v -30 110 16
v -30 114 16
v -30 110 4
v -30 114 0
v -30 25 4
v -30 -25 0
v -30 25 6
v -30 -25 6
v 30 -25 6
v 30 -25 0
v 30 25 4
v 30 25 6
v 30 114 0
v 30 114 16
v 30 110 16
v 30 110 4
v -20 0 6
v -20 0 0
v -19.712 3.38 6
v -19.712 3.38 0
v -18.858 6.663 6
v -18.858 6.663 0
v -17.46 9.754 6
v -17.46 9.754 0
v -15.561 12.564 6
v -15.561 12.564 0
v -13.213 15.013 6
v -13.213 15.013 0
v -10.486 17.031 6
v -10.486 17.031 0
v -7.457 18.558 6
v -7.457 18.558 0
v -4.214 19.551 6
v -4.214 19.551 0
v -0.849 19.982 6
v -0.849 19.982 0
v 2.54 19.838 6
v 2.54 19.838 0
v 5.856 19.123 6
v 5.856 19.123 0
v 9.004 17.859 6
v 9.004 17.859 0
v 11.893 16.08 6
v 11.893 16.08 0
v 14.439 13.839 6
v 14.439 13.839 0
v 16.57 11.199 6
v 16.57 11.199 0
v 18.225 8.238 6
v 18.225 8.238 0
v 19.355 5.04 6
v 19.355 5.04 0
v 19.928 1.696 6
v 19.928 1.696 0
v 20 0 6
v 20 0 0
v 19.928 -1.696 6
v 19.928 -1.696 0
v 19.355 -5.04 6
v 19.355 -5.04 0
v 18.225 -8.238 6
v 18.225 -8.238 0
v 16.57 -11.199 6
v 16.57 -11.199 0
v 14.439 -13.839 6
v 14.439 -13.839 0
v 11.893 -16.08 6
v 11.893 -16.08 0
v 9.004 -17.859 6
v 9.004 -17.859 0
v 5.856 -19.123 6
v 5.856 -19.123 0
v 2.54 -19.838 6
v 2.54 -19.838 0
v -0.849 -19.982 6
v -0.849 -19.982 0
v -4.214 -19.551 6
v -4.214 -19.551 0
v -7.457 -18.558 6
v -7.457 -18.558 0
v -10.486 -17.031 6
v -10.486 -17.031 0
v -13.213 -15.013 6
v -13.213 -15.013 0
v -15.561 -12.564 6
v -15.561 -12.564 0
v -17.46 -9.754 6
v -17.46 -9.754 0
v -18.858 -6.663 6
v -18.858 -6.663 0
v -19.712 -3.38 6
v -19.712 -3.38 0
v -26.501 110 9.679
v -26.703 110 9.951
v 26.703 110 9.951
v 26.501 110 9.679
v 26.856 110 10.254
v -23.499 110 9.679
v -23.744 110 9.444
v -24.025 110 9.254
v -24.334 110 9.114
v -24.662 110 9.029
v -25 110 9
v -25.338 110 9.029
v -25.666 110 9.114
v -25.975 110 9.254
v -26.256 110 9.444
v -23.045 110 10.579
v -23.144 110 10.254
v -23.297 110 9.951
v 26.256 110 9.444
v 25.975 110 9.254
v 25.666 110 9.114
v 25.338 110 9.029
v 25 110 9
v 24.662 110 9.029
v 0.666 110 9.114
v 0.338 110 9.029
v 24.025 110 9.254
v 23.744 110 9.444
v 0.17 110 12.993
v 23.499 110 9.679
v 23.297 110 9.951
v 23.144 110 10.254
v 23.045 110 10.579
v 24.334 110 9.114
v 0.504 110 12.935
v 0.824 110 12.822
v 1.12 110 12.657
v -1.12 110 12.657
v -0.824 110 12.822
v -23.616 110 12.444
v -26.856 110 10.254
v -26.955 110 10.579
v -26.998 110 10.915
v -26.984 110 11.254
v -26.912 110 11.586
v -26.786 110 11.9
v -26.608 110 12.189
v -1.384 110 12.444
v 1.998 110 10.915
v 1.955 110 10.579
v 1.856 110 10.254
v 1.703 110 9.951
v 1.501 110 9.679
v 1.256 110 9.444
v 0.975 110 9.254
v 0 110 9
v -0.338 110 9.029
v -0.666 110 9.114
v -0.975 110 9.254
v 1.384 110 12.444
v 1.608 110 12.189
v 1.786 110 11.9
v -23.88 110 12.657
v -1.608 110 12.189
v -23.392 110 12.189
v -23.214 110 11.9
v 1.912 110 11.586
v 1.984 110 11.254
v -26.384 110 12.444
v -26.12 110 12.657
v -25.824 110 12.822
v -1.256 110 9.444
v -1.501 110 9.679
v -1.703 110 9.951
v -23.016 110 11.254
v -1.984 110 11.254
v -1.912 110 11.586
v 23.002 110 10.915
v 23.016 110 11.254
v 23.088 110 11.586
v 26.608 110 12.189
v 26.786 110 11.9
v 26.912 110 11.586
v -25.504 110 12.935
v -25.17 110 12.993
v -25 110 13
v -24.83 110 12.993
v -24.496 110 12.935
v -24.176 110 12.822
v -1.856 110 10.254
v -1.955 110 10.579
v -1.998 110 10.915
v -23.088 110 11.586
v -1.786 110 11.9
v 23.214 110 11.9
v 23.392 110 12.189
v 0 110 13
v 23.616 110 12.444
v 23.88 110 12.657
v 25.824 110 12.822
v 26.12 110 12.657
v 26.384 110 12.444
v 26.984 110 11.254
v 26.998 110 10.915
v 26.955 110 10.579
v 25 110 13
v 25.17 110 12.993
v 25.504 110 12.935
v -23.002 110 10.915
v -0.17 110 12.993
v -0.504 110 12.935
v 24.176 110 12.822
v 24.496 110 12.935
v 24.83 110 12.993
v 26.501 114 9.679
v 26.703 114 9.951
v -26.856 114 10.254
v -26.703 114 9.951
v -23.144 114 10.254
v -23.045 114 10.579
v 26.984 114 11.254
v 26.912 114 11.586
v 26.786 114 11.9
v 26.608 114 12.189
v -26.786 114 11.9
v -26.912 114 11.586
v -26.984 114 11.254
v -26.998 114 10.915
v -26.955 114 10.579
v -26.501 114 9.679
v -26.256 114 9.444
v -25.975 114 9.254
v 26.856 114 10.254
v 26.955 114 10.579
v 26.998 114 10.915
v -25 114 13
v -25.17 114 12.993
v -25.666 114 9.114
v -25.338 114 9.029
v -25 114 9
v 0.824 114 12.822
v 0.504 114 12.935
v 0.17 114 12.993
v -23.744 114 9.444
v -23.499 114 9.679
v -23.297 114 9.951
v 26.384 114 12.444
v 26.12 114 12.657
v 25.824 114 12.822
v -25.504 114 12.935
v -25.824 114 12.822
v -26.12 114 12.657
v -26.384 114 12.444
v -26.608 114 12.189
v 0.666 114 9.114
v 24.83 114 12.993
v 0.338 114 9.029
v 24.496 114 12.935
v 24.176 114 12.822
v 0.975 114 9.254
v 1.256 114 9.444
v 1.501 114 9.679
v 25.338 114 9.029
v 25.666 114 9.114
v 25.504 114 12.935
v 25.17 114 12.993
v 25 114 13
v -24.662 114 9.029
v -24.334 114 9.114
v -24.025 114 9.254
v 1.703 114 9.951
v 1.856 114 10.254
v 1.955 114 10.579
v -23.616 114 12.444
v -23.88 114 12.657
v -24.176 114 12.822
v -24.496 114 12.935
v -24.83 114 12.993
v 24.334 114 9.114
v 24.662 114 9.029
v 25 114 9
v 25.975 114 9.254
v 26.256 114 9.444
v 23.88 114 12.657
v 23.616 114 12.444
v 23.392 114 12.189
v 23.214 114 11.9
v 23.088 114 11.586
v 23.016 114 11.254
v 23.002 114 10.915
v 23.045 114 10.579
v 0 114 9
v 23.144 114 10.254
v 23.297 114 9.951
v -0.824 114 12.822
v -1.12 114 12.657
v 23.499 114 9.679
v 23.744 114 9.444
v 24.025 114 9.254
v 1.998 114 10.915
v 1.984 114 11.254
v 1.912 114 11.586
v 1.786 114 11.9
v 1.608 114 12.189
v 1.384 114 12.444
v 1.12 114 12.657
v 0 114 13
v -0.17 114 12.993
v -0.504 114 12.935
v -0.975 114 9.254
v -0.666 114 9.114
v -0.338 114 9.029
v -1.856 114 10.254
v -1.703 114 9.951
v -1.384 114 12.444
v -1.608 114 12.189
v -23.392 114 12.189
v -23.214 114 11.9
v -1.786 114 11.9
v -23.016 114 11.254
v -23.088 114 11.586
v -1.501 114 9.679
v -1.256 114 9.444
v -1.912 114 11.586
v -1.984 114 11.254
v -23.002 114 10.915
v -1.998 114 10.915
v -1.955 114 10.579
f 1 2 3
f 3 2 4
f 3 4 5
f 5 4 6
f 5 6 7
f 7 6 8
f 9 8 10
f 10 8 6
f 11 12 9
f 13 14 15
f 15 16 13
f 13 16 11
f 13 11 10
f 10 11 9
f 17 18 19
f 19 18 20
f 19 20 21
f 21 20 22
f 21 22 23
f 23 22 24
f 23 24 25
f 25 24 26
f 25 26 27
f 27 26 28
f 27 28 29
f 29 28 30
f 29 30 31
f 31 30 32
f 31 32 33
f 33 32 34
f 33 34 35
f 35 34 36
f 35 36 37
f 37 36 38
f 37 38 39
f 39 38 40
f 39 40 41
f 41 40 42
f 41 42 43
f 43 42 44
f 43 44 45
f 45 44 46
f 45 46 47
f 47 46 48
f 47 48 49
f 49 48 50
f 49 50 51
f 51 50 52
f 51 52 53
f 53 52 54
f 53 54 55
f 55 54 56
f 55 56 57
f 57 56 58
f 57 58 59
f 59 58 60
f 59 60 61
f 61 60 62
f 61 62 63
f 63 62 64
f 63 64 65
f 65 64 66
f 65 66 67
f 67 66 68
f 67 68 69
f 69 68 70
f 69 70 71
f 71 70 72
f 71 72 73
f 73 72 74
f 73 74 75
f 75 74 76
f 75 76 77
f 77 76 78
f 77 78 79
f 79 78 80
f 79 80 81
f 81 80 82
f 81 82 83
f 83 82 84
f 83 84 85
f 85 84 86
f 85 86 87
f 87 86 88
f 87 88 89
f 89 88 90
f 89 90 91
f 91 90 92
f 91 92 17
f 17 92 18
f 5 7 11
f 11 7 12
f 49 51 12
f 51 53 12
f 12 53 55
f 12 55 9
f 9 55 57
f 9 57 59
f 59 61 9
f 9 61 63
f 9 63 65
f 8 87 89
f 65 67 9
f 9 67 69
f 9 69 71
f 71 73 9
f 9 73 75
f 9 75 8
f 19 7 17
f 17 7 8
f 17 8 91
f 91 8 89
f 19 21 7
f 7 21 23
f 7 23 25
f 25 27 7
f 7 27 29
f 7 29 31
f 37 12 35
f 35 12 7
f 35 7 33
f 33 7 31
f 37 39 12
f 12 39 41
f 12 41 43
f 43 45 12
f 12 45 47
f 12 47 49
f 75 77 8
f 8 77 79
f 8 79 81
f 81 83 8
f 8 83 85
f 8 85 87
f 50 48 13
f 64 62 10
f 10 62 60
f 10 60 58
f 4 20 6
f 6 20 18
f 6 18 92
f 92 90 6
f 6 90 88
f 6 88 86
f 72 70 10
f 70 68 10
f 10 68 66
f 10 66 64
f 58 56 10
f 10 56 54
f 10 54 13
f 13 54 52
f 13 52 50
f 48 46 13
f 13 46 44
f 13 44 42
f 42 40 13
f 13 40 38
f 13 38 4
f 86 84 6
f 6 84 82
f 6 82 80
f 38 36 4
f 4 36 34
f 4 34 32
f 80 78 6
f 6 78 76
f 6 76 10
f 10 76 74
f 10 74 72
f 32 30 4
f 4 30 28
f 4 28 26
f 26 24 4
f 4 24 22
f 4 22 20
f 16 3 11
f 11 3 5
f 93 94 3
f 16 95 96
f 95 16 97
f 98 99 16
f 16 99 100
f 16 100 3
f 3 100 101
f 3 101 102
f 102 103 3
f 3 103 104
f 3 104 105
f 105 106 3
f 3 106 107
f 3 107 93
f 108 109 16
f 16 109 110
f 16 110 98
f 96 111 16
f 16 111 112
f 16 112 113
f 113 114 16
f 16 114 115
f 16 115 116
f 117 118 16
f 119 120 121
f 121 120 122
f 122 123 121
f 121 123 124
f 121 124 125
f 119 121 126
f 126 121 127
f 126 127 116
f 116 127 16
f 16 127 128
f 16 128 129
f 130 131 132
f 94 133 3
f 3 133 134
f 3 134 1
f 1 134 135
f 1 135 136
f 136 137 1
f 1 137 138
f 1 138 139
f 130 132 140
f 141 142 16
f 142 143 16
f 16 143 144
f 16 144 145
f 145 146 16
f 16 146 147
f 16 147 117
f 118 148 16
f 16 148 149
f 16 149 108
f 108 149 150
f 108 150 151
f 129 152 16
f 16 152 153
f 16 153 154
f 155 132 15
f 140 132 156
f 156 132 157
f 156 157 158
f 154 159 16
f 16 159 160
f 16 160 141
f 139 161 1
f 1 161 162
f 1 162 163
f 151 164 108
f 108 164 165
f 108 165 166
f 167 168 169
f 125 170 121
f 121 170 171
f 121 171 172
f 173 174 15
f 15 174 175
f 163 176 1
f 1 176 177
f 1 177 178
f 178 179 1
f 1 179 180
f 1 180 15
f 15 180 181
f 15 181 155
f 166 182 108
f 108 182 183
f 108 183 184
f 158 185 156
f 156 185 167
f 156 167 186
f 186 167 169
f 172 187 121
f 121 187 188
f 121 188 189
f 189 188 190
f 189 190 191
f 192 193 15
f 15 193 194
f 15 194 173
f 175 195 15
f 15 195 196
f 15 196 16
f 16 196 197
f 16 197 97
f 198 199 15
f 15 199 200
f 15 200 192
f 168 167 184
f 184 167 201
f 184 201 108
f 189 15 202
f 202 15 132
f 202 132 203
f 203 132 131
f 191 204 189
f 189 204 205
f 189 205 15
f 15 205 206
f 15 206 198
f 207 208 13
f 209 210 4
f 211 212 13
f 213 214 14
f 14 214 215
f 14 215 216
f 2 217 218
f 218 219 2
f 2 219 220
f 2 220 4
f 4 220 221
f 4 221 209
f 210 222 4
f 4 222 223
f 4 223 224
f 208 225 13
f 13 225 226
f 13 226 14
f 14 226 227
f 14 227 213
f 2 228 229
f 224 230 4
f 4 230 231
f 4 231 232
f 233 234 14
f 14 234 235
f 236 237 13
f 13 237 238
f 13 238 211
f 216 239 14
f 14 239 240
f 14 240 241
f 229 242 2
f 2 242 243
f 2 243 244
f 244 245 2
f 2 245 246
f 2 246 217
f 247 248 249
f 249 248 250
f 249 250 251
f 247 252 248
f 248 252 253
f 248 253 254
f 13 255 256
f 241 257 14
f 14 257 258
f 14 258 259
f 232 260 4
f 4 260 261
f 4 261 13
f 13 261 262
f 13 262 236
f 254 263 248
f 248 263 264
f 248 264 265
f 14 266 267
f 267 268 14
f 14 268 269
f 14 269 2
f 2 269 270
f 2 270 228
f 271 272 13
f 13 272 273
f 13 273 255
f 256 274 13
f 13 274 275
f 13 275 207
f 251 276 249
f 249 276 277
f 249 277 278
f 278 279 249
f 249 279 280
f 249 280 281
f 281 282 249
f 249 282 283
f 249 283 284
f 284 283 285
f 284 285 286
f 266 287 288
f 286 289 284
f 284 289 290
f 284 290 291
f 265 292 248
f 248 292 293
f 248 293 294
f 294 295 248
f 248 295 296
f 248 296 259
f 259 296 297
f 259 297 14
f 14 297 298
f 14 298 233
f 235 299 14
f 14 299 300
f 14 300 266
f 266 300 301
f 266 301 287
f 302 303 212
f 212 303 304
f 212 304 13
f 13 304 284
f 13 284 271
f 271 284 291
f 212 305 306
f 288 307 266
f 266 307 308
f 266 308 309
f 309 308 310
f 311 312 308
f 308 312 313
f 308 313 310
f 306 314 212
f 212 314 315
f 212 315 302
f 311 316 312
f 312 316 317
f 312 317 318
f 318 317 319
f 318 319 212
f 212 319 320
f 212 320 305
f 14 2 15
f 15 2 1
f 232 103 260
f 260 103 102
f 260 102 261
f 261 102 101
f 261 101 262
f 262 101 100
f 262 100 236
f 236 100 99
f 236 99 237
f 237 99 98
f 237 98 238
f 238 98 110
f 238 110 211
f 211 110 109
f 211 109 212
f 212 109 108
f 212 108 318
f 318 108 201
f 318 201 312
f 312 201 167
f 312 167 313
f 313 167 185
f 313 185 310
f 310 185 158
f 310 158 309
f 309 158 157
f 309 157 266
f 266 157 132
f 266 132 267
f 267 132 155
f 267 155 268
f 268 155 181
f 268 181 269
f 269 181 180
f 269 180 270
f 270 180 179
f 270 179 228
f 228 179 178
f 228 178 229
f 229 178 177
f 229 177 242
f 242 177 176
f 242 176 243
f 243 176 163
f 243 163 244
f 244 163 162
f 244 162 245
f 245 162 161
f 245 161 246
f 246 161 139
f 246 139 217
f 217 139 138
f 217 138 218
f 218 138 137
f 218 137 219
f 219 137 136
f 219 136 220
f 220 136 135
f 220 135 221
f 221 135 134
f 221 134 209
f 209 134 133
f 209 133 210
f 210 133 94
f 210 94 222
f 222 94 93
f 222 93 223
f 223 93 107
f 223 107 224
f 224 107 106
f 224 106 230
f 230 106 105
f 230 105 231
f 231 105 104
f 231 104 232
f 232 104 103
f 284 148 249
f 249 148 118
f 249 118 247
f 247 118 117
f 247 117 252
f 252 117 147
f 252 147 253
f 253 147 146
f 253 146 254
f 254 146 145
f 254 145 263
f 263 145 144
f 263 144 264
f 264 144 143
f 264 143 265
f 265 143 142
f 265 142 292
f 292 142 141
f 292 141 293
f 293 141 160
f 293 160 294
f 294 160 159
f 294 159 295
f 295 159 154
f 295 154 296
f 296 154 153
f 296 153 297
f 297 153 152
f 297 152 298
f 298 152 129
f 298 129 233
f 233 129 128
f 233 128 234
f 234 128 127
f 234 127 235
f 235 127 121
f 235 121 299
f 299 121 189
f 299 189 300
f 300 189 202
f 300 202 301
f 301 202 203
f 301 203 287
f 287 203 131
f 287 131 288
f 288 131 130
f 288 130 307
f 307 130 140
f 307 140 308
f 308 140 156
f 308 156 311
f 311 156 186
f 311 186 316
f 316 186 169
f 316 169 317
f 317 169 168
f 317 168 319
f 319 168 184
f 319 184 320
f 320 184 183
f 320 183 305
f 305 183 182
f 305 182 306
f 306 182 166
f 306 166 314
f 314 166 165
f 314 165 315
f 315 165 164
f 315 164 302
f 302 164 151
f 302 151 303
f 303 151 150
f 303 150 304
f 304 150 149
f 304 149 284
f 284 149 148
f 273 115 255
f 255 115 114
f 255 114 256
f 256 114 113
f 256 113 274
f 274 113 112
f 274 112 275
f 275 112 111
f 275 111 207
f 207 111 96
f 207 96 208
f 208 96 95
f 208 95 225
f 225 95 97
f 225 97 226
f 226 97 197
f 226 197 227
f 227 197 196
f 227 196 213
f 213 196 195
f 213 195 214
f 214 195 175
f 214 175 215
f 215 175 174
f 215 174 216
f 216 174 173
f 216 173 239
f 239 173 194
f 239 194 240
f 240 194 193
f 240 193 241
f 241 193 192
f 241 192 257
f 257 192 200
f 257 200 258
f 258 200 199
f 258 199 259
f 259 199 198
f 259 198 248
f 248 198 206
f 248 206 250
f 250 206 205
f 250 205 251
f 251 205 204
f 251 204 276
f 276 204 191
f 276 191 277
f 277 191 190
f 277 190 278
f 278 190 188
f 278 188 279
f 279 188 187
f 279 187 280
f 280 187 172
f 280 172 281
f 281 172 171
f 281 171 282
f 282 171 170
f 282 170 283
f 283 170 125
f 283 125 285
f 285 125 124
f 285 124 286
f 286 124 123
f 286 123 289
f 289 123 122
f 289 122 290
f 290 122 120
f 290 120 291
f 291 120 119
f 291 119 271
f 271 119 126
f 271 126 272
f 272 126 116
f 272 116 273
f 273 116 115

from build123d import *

# Parameters (mm, degrees)
SKETCH1_W           = 60
SKETCH1_H           = 50
SKETCH1_R           = 20
BOSS_EXTRUDE1_DEPTH = 6
SKETCH1_3_W         = 60
SKETCH1_3_H         = 85
BOSS_EXTRUDE2_DEPTH = 4
SKETCH4_W           = 60
SKETCH4_H           = 16
SKETCH4_R           = 2
BOSS_EXTRUDE3_DEPTH = 4


with BuildPart() as part:
    # Sketch1 → Boss-Extrude1 (new body)
    with BuildSketch(Plane.XY):
        Rectangle(SKETCH1_W, SKETCH1_H)
        Circle(SKETCH1_R, mode=Mode.SUBTRACT)
    extrude(amount=BOSS_EXTRUDE1_DEPTH)

    # Sketch1<3> → Boss-Extrude2 (add)
    with BuildSketch(Plane.XY):
        with Locations((0, 67.5)):
            Rectangle(SKETCH1_3_W, SKETCH1_3_H)
    extrude(amount=BOSS_EXTRUDE2_DEPTH)

    # Sketch4 → Boss-Extrude3 (add)
    with BuildSketch(Plane(origin=(0, 110, 0), x_dir=(1, 0, 0), z_dir=(0, 1, 0))):
        with Locations((0, -8)):
            Rectangle(SKETCH4_W, SKETCH4_H)
        with Locations((-25, -11)):
            Circle(SKETCH4_R, mode=Mode.SUBTRACT)
        with Locations((0, -11)):
            Circle(SKETCH4_R, mode=Mode.SUBTRACT)
        with Locations((25, -11)):
            Circle(SKETCH4_R, mode=Mode.SUBTRACT)
    extrude(amount=BOSS_EXTRUDE3_DEPTH)


solid = part.part
